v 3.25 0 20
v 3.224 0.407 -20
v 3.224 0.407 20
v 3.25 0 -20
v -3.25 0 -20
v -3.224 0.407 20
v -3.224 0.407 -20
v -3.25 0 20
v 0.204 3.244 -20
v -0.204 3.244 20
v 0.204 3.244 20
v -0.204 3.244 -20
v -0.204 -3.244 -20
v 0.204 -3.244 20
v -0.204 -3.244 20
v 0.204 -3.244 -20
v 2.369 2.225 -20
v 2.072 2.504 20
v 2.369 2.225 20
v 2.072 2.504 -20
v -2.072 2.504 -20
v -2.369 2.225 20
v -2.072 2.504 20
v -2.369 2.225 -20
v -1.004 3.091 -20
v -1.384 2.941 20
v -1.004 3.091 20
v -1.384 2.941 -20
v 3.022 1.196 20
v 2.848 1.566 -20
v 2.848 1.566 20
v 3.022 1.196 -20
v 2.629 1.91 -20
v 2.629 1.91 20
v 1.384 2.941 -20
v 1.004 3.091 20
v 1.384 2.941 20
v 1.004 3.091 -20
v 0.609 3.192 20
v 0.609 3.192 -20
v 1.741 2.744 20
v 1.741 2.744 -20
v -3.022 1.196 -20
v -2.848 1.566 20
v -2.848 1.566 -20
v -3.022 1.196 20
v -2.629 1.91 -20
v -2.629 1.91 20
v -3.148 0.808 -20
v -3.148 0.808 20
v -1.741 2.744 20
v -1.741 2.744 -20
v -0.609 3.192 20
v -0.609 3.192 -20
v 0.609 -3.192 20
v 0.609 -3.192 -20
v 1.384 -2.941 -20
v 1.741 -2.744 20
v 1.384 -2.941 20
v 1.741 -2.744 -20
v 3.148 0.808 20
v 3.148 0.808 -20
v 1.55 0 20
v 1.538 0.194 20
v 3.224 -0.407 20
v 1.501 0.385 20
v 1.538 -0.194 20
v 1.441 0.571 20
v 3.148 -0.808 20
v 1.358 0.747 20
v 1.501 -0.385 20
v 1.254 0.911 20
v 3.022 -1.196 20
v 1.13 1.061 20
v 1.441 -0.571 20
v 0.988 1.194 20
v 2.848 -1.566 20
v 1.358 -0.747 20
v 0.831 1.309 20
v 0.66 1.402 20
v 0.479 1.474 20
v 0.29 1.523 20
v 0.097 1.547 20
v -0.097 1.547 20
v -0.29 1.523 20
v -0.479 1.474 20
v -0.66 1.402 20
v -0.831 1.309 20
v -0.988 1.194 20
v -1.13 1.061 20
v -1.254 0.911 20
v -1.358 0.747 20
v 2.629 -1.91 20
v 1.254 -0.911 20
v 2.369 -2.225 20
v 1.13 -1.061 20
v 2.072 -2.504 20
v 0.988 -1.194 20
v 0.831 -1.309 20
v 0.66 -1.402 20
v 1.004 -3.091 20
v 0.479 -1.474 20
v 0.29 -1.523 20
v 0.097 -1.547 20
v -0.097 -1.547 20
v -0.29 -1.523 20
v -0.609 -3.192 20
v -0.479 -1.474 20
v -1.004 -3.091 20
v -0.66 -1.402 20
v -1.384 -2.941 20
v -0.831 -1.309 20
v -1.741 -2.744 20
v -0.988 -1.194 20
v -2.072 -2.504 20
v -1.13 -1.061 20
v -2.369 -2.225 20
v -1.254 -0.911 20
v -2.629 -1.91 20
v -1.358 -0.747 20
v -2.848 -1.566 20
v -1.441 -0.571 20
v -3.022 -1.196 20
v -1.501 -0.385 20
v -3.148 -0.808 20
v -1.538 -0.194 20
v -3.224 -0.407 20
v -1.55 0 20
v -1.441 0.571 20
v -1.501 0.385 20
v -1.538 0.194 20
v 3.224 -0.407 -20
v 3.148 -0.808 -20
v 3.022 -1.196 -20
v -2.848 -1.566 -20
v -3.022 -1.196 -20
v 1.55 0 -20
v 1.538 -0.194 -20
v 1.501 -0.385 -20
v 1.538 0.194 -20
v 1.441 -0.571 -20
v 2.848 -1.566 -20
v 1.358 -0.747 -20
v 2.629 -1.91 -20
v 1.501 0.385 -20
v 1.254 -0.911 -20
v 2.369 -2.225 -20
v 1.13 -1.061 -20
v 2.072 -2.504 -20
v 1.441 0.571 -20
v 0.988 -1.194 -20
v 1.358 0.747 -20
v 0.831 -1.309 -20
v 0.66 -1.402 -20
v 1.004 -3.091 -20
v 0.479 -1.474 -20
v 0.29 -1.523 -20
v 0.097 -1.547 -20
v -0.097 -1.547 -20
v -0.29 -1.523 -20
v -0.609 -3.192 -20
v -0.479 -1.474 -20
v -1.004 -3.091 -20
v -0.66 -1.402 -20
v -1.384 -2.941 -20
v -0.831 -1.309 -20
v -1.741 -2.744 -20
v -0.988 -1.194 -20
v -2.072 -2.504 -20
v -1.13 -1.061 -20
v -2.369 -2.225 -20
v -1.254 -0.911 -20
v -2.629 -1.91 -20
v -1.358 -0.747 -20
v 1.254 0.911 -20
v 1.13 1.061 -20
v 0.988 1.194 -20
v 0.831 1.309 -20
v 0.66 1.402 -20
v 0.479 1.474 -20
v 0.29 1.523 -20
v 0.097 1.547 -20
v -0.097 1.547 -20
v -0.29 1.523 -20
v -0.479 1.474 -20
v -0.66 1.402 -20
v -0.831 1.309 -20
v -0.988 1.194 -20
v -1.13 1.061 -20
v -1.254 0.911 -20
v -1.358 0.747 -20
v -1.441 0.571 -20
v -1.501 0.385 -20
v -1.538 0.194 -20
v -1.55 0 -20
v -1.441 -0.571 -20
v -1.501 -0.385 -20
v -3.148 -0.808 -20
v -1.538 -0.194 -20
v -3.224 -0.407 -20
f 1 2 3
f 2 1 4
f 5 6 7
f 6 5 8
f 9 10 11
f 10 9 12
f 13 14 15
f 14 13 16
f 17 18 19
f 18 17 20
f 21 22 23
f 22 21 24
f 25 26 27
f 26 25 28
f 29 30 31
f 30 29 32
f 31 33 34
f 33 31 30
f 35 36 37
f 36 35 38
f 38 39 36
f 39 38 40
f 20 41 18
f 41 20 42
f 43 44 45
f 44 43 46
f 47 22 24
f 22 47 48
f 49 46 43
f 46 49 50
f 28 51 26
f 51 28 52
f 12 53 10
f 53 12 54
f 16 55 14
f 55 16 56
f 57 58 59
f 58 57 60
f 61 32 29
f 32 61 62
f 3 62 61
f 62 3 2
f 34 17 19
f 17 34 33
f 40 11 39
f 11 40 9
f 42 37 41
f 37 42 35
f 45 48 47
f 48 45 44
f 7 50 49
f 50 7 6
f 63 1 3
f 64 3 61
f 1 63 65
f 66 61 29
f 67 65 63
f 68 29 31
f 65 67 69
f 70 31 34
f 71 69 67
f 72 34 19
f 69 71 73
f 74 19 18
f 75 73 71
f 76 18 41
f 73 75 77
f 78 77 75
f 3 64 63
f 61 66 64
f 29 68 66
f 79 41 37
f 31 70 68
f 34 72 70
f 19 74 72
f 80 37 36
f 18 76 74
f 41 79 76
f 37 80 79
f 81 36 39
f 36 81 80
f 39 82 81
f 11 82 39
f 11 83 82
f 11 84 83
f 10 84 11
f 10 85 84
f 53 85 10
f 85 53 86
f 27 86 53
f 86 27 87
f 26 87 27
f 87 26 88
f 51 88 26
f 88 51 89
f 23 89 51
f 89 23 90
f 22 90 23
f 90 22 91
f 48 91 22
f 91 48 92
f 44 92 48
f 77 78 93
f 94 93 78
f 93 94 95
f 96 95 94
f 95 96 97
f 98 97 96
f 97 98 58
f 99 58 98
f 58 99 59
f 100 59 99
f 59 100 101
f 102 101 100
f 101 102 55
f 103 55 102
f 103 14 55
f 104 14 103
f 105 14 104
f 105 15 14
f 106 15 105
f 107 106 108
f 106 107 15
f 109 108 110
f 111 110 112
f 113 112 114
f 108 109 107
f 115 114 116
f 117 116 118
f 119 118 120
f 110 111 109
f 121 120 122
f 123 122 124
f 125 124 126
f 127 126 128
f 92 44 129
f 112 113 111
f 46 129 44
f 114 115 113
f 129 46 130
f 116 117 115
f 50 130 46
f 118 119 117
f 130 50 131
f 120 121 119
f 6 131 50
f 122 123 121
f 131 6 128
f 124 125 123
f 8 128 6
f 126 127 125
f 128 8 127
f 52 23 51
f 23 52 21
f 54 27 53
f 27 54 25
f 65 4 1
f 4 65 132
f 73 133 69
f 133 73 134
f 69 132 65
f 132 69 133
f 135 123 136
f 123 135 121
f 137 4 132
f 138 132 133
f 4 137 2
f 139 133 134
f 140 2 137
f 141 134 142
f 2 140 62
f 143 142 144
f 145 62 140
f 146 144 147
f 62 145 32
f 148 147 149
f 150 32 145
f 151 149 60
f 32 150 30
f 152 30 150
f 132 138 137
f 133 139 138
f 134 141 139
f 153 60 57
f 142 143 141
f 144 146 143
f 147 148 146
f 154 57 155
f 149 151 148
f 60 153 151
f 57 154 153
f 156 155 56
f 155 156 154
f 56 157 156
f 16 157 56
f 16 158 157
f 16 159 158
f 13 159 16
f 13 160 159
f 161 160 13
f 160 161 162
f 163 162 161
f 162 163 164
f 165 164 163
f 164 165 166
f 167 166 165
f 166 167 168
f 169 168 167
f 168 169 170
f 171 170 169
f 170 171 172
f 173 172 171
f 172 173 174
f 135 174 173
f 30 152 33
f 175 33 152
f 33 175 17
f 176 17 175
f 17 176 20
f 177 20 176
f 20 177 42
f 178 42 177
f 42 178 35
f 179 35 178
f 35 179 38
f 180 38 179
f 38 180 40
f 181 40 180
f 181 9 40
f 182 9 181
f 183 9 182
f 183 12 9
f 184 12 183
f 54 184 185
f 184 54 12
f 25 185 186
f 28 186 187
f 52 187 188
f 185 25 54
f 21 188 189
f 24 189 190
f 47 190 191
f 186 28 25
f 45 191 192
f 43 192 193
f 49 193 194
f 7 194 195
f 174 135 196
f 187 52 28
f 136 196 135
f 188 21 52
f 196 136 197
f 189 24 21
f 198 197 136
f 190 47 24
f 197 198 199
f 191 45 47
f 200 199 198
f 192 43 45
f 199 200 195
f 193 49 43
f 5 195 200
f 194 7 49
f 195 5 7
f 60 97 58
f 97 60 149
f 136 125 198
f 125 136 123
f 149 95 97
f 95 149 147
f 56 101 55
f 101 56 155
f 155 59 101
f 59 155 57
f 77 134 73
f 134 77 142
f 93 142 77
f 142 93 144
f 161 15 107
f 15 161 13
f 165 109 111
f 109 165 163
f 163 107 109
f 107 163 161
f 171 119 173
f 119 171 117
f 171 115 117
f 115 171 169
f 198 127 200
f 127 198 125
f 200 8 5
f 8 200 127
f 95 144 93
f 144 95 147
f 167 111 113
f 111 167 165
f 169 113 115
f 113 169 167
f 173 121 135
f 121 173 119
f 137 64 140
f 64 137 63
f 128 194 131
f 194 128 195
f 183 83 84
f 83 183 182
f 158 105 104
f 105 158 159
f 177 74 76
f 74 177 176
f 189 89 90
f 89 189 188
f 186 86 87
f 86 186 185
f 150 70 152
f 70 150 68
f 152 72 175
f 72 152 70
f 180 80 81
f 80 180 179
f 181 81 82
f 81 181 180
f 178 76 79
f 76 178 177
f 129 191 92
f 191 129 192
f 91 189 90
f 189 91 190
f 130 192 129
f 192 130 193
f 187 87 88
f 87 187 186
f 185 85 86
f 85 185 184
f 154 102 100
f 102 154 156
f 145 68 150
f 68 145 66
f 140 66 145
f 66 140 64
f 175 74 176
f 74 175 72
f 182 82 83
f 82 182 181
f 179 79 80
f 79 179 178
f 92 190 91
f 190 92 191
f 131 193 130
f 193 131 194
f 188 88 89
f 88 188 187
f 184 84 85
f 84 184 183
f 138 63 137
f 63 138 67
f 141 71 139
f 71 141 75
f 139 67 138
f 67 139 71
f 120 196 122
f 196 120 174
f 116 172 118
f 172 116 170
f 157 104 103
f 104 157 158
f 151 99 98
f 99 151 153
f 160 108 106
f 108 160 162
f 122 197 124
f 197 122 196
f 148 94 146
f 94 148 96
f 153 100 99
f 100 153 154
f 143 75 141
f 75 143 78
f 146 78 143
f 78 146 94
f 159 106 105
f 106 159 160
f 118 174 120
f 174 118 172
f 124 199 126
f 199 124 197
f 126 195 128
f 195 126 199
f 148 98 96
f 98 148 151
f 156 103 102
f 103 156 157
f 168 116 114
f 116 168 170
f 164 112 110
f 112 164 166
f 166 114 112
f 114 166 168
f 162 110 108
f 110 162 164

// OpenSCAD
$fn = 50;


difference() {
	union() {
		translate(v = [0, 0, -20.0000000000]) {
			cylinder(h = 40, r = 3.2500000000);
		}
	}
	union() {
		translate(v = [0, 0, -100.0000000000]) {
			cylinder(h = 200, r = 1.5500000000);
		}
	}
}
